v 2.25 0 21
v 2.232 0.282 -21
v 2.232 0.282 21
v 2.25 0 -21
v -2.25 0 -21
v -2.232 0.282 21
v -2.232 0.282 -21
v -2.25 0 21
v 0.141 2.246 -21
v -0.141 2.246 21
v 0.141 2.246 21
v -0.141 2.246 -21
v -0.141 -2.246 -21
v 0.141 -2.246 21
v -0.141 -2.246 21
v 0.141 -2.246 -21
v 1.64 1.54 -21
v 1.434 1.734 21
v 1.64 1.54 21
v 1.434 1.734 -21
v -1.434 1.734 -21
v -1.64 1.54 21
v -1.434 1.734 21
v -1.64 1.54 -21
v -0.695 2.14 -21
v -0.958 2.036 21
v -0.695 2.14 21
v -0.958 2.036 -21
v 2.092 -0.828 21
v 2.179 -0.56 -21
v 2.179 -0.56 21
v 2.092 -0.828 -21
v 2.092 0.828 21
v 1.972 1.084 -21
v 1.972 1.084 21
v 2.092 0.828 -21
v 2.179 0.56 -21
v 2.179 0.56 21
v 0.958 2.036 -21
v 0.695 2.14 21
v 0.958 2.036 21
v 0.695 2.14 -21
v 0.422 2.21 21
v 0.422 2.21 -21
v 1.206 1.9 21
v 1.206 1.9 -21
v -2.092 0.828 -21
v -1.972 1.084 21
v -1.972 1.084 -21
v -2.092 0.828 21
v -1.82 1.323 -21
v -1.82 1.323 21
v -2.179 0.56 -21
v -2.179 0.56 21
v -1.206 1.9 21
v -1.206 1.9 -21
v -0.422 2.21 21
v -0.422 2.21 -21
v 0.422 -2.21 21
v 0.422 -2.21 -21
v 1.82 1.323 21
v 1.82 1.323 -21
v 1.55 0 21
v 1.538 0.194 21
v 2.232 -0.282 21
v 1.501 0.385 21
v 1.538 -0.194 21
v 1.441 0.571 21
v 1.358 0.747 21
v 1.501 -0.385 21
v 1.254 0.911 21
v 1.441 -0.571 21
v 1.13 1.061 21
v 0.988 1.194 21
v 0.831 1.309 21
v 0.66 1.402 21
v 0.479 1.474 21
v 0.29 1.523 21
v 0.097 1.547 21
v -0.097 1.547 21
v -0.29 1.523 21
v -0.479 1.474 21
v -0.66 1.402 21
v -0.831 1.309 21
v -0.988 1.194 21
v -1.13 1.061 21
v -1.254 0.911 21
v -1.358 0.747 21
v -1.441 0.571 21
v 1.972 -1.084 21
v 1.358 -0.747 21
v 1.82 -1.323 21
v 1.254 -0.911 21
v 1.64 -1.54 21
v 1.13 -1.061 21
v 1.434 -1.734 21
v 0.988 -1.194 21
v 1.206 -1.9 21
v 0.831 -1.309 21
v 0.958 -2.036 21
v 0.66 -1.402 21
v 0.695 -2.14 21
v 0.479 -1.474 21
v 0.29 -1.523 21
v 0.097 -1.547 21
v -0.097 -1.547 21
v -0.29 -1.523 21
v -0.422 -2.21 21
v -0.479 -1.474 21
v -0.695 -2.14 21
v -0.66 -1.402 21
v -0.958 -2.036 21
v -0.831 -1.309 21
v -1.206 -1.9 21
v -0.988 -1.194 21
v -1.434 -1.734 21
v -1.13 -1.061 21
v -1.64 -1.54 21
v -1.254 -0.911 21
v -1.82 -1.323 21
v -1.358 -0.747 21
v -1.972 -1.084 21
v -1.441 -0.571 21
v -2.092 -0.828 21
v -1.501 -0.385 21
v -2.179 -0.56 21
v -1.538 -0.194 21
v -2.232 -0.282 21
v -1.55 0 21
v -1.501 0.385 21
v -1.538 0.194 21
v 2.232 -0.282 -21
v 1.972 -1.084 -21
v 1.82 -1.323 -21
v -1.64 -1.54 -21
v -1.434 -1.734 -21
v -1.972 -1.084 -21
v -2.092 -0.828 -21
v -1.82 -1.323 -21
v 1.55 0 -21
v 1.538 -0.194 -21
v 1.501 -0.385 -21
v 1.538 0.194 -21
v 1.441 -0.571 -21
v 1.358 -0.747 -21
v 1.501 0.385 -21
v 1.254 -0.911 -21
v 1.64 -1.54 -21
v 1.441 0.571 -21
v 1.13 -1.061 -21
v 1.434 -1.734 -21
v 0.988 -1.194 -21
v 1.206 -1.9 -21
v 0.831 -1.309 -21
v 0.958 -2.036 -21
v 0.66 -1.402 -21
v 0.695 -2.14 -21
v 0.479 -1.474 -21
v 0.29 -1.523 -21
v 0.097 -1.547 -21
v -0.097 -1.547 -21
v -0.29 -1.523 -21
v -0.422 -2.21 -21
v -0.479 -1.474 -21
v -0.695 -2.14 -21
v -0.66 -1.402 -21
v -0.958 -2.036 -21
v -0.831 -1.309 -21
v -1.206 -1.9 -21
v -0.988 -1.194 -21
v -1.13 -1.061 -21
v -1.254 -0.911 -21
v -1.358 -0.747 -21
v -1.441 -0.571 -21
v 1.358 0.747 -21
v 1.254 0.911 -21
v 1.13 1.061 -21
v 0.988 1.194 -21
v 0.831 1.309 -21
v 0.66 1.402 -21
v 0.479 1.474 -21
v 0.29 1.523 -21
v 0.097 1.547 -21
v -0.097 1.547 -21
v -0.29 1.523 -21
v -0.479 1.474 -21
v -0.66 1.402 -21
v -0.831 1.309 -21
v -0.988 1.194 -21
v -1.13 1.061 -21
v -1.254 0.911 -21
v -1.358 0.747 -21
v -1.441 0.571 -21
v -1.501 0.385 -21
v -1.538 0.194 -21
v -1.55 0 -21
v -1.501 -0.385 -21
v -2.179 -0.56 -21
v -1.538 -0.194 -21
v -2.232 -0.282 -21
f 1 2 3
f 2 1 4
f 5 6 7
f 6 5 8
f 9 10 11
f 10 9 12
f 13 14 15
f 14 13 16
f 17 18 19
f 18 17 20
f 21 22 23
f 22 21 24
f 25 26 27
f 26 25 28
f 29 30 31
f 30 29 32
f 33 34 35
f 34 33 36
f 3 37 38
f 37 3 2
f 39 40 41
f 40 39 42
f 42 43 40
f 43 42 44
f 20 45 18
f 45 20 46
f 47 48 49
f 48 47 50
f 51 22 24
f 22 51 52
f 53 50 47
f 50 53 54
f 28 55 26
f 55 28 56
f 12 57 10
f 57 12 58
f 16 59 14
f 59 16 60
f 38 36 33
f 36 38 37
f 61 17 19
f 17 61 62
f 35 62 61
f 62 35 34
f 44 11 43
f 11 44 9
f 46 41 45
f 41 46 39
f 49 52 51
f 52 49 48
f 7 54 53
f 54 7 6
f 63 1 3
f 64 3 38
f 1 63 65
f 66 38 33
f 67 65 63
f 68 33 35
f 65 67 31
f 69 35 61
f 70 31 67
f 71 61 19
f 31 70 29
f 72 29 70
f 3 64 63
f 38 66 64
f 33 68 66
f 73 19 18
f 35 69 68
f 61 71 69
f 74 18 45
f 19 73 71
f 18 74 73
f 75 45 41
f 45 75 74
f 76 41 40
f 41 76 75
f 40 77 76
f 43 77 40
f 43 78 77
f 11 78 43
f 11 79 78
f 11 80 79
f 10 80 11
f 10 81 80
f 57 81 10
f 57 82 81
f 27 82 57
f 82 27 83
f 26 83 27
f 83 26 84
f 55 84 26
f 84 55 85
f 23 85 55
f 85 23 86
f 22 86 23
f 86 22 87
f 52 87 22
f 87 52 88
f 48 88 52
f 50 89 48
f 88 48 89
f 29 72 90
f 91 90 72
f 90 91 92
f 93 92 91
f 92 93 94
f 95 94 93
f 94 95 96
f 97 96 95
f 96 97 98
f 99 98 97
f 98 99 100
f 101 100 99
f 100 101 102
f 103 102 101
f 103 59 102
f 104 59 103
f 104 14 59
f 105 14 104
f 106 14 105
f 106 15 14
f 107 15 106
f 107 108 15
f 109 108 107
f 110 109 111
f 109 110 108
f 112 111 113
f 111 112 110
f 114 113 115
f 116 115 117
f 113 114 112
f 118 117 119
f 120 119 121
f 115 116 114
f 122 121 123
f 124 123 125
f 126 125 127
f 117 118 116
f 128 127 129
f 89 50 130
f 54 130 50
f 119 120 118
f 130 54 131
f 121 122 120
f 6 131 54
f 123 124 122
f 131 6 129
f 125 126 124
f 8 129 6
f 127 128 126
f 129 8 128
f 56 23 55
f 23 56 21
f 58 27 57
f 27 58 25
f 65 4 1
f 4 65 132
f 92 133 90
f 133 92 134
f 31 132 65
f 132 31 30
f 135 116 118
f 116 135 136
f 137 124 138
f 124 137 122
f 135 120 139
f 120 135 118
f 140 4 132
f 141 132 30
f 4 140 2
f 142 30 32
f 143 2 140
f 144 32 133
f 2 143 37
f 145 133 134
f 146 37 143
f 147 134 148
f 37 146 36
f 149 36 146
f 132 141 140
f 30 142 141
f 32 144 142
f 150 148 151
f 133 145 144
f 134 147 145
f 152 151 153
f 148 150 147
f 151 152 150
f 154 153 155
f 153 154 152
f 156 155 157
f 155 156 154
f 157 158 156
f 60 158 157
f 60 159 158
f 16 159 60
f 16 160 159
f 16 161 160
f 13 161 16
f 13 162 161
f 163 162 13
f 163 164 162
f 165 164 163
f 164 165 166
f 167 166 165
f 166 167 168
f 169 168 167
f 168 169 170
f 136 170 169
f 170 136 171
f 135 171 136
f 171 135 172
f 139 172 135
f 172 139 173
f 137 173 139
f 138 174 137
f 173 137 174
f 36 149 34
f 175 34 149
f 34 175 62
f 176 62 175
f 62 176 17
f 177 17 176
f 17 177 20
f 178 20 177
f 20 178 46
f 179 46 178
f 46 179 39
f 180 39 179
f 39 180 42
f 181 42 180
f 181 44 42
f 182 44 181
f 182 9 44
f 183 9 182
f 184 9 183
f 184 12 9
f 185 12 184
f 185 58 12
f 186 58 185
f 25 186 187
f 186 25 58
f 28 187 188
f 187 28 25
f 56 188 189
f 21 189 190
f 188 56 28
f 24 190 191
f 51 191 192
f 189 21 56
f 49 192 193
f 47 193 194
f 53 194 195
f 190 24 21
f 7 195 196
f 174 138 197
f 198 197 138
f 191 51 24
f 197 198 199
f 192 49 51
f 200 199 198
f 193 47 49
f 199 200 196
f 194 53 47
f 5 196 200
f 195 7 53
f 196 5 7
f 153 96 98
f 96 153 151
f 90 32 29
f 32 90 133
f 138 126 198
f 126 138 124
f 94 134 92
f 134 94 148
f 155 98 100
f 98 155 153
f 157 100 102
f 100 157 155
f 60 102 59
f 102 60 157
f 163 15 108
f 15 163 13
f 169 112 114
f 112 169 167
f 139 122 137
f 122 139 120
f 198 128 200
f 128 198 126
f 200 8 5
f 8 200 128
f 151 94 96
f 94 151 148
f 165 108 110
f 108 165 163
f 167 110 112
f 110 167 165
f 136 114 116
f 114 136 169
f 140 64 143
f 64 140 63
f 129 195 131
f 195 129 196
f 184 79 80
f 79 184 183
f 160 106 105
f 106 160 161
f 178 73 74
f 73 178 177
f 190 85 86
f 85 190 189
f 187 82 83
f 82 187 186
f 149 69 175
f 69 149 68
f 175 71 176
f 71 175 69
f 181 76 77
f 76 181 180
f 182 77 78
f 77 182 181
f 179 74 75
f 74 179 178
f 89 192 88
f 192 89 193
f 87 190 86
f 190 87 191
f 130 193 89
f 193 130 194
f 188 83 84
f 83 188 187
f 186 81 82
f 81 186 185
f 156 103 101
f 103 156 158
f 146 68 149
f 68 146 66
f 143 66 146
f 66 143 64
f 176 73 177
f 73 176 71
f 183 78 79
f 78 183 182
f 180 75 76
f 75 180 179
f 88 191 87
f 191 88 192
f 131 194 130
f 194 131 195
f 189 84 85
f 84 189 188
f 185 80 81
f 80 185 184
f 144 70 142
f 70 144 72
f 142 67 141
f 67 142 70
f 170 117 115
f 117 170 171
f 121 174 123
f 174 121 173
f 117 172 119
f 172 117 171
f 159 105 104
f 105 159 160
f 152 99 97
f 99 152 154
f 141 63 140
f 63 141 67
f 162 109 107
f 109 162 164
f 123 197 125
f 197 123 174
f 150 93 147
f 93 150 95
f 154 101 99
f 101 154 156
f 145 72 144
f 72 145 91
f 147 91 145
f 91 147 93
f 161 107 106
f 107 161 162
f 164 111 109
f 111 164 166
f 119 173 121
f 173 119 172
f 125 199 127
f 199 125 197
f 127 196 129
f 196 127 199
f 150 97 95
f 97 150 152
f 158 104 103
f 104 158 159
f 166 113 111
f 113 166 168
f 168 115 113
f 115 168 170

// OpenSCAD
$fn = 50;


difference() {
	union() {
		translate(v = [0, 0, -21.0000000000]) {
			cylinder(h = 42, r = 2.2500000000);
		}
	}
	union() {
		translate(v = [0, 0, -100.0000000000]) {
			cylinder(h = 200, r = 1.5500000000);
		}
	}
}
